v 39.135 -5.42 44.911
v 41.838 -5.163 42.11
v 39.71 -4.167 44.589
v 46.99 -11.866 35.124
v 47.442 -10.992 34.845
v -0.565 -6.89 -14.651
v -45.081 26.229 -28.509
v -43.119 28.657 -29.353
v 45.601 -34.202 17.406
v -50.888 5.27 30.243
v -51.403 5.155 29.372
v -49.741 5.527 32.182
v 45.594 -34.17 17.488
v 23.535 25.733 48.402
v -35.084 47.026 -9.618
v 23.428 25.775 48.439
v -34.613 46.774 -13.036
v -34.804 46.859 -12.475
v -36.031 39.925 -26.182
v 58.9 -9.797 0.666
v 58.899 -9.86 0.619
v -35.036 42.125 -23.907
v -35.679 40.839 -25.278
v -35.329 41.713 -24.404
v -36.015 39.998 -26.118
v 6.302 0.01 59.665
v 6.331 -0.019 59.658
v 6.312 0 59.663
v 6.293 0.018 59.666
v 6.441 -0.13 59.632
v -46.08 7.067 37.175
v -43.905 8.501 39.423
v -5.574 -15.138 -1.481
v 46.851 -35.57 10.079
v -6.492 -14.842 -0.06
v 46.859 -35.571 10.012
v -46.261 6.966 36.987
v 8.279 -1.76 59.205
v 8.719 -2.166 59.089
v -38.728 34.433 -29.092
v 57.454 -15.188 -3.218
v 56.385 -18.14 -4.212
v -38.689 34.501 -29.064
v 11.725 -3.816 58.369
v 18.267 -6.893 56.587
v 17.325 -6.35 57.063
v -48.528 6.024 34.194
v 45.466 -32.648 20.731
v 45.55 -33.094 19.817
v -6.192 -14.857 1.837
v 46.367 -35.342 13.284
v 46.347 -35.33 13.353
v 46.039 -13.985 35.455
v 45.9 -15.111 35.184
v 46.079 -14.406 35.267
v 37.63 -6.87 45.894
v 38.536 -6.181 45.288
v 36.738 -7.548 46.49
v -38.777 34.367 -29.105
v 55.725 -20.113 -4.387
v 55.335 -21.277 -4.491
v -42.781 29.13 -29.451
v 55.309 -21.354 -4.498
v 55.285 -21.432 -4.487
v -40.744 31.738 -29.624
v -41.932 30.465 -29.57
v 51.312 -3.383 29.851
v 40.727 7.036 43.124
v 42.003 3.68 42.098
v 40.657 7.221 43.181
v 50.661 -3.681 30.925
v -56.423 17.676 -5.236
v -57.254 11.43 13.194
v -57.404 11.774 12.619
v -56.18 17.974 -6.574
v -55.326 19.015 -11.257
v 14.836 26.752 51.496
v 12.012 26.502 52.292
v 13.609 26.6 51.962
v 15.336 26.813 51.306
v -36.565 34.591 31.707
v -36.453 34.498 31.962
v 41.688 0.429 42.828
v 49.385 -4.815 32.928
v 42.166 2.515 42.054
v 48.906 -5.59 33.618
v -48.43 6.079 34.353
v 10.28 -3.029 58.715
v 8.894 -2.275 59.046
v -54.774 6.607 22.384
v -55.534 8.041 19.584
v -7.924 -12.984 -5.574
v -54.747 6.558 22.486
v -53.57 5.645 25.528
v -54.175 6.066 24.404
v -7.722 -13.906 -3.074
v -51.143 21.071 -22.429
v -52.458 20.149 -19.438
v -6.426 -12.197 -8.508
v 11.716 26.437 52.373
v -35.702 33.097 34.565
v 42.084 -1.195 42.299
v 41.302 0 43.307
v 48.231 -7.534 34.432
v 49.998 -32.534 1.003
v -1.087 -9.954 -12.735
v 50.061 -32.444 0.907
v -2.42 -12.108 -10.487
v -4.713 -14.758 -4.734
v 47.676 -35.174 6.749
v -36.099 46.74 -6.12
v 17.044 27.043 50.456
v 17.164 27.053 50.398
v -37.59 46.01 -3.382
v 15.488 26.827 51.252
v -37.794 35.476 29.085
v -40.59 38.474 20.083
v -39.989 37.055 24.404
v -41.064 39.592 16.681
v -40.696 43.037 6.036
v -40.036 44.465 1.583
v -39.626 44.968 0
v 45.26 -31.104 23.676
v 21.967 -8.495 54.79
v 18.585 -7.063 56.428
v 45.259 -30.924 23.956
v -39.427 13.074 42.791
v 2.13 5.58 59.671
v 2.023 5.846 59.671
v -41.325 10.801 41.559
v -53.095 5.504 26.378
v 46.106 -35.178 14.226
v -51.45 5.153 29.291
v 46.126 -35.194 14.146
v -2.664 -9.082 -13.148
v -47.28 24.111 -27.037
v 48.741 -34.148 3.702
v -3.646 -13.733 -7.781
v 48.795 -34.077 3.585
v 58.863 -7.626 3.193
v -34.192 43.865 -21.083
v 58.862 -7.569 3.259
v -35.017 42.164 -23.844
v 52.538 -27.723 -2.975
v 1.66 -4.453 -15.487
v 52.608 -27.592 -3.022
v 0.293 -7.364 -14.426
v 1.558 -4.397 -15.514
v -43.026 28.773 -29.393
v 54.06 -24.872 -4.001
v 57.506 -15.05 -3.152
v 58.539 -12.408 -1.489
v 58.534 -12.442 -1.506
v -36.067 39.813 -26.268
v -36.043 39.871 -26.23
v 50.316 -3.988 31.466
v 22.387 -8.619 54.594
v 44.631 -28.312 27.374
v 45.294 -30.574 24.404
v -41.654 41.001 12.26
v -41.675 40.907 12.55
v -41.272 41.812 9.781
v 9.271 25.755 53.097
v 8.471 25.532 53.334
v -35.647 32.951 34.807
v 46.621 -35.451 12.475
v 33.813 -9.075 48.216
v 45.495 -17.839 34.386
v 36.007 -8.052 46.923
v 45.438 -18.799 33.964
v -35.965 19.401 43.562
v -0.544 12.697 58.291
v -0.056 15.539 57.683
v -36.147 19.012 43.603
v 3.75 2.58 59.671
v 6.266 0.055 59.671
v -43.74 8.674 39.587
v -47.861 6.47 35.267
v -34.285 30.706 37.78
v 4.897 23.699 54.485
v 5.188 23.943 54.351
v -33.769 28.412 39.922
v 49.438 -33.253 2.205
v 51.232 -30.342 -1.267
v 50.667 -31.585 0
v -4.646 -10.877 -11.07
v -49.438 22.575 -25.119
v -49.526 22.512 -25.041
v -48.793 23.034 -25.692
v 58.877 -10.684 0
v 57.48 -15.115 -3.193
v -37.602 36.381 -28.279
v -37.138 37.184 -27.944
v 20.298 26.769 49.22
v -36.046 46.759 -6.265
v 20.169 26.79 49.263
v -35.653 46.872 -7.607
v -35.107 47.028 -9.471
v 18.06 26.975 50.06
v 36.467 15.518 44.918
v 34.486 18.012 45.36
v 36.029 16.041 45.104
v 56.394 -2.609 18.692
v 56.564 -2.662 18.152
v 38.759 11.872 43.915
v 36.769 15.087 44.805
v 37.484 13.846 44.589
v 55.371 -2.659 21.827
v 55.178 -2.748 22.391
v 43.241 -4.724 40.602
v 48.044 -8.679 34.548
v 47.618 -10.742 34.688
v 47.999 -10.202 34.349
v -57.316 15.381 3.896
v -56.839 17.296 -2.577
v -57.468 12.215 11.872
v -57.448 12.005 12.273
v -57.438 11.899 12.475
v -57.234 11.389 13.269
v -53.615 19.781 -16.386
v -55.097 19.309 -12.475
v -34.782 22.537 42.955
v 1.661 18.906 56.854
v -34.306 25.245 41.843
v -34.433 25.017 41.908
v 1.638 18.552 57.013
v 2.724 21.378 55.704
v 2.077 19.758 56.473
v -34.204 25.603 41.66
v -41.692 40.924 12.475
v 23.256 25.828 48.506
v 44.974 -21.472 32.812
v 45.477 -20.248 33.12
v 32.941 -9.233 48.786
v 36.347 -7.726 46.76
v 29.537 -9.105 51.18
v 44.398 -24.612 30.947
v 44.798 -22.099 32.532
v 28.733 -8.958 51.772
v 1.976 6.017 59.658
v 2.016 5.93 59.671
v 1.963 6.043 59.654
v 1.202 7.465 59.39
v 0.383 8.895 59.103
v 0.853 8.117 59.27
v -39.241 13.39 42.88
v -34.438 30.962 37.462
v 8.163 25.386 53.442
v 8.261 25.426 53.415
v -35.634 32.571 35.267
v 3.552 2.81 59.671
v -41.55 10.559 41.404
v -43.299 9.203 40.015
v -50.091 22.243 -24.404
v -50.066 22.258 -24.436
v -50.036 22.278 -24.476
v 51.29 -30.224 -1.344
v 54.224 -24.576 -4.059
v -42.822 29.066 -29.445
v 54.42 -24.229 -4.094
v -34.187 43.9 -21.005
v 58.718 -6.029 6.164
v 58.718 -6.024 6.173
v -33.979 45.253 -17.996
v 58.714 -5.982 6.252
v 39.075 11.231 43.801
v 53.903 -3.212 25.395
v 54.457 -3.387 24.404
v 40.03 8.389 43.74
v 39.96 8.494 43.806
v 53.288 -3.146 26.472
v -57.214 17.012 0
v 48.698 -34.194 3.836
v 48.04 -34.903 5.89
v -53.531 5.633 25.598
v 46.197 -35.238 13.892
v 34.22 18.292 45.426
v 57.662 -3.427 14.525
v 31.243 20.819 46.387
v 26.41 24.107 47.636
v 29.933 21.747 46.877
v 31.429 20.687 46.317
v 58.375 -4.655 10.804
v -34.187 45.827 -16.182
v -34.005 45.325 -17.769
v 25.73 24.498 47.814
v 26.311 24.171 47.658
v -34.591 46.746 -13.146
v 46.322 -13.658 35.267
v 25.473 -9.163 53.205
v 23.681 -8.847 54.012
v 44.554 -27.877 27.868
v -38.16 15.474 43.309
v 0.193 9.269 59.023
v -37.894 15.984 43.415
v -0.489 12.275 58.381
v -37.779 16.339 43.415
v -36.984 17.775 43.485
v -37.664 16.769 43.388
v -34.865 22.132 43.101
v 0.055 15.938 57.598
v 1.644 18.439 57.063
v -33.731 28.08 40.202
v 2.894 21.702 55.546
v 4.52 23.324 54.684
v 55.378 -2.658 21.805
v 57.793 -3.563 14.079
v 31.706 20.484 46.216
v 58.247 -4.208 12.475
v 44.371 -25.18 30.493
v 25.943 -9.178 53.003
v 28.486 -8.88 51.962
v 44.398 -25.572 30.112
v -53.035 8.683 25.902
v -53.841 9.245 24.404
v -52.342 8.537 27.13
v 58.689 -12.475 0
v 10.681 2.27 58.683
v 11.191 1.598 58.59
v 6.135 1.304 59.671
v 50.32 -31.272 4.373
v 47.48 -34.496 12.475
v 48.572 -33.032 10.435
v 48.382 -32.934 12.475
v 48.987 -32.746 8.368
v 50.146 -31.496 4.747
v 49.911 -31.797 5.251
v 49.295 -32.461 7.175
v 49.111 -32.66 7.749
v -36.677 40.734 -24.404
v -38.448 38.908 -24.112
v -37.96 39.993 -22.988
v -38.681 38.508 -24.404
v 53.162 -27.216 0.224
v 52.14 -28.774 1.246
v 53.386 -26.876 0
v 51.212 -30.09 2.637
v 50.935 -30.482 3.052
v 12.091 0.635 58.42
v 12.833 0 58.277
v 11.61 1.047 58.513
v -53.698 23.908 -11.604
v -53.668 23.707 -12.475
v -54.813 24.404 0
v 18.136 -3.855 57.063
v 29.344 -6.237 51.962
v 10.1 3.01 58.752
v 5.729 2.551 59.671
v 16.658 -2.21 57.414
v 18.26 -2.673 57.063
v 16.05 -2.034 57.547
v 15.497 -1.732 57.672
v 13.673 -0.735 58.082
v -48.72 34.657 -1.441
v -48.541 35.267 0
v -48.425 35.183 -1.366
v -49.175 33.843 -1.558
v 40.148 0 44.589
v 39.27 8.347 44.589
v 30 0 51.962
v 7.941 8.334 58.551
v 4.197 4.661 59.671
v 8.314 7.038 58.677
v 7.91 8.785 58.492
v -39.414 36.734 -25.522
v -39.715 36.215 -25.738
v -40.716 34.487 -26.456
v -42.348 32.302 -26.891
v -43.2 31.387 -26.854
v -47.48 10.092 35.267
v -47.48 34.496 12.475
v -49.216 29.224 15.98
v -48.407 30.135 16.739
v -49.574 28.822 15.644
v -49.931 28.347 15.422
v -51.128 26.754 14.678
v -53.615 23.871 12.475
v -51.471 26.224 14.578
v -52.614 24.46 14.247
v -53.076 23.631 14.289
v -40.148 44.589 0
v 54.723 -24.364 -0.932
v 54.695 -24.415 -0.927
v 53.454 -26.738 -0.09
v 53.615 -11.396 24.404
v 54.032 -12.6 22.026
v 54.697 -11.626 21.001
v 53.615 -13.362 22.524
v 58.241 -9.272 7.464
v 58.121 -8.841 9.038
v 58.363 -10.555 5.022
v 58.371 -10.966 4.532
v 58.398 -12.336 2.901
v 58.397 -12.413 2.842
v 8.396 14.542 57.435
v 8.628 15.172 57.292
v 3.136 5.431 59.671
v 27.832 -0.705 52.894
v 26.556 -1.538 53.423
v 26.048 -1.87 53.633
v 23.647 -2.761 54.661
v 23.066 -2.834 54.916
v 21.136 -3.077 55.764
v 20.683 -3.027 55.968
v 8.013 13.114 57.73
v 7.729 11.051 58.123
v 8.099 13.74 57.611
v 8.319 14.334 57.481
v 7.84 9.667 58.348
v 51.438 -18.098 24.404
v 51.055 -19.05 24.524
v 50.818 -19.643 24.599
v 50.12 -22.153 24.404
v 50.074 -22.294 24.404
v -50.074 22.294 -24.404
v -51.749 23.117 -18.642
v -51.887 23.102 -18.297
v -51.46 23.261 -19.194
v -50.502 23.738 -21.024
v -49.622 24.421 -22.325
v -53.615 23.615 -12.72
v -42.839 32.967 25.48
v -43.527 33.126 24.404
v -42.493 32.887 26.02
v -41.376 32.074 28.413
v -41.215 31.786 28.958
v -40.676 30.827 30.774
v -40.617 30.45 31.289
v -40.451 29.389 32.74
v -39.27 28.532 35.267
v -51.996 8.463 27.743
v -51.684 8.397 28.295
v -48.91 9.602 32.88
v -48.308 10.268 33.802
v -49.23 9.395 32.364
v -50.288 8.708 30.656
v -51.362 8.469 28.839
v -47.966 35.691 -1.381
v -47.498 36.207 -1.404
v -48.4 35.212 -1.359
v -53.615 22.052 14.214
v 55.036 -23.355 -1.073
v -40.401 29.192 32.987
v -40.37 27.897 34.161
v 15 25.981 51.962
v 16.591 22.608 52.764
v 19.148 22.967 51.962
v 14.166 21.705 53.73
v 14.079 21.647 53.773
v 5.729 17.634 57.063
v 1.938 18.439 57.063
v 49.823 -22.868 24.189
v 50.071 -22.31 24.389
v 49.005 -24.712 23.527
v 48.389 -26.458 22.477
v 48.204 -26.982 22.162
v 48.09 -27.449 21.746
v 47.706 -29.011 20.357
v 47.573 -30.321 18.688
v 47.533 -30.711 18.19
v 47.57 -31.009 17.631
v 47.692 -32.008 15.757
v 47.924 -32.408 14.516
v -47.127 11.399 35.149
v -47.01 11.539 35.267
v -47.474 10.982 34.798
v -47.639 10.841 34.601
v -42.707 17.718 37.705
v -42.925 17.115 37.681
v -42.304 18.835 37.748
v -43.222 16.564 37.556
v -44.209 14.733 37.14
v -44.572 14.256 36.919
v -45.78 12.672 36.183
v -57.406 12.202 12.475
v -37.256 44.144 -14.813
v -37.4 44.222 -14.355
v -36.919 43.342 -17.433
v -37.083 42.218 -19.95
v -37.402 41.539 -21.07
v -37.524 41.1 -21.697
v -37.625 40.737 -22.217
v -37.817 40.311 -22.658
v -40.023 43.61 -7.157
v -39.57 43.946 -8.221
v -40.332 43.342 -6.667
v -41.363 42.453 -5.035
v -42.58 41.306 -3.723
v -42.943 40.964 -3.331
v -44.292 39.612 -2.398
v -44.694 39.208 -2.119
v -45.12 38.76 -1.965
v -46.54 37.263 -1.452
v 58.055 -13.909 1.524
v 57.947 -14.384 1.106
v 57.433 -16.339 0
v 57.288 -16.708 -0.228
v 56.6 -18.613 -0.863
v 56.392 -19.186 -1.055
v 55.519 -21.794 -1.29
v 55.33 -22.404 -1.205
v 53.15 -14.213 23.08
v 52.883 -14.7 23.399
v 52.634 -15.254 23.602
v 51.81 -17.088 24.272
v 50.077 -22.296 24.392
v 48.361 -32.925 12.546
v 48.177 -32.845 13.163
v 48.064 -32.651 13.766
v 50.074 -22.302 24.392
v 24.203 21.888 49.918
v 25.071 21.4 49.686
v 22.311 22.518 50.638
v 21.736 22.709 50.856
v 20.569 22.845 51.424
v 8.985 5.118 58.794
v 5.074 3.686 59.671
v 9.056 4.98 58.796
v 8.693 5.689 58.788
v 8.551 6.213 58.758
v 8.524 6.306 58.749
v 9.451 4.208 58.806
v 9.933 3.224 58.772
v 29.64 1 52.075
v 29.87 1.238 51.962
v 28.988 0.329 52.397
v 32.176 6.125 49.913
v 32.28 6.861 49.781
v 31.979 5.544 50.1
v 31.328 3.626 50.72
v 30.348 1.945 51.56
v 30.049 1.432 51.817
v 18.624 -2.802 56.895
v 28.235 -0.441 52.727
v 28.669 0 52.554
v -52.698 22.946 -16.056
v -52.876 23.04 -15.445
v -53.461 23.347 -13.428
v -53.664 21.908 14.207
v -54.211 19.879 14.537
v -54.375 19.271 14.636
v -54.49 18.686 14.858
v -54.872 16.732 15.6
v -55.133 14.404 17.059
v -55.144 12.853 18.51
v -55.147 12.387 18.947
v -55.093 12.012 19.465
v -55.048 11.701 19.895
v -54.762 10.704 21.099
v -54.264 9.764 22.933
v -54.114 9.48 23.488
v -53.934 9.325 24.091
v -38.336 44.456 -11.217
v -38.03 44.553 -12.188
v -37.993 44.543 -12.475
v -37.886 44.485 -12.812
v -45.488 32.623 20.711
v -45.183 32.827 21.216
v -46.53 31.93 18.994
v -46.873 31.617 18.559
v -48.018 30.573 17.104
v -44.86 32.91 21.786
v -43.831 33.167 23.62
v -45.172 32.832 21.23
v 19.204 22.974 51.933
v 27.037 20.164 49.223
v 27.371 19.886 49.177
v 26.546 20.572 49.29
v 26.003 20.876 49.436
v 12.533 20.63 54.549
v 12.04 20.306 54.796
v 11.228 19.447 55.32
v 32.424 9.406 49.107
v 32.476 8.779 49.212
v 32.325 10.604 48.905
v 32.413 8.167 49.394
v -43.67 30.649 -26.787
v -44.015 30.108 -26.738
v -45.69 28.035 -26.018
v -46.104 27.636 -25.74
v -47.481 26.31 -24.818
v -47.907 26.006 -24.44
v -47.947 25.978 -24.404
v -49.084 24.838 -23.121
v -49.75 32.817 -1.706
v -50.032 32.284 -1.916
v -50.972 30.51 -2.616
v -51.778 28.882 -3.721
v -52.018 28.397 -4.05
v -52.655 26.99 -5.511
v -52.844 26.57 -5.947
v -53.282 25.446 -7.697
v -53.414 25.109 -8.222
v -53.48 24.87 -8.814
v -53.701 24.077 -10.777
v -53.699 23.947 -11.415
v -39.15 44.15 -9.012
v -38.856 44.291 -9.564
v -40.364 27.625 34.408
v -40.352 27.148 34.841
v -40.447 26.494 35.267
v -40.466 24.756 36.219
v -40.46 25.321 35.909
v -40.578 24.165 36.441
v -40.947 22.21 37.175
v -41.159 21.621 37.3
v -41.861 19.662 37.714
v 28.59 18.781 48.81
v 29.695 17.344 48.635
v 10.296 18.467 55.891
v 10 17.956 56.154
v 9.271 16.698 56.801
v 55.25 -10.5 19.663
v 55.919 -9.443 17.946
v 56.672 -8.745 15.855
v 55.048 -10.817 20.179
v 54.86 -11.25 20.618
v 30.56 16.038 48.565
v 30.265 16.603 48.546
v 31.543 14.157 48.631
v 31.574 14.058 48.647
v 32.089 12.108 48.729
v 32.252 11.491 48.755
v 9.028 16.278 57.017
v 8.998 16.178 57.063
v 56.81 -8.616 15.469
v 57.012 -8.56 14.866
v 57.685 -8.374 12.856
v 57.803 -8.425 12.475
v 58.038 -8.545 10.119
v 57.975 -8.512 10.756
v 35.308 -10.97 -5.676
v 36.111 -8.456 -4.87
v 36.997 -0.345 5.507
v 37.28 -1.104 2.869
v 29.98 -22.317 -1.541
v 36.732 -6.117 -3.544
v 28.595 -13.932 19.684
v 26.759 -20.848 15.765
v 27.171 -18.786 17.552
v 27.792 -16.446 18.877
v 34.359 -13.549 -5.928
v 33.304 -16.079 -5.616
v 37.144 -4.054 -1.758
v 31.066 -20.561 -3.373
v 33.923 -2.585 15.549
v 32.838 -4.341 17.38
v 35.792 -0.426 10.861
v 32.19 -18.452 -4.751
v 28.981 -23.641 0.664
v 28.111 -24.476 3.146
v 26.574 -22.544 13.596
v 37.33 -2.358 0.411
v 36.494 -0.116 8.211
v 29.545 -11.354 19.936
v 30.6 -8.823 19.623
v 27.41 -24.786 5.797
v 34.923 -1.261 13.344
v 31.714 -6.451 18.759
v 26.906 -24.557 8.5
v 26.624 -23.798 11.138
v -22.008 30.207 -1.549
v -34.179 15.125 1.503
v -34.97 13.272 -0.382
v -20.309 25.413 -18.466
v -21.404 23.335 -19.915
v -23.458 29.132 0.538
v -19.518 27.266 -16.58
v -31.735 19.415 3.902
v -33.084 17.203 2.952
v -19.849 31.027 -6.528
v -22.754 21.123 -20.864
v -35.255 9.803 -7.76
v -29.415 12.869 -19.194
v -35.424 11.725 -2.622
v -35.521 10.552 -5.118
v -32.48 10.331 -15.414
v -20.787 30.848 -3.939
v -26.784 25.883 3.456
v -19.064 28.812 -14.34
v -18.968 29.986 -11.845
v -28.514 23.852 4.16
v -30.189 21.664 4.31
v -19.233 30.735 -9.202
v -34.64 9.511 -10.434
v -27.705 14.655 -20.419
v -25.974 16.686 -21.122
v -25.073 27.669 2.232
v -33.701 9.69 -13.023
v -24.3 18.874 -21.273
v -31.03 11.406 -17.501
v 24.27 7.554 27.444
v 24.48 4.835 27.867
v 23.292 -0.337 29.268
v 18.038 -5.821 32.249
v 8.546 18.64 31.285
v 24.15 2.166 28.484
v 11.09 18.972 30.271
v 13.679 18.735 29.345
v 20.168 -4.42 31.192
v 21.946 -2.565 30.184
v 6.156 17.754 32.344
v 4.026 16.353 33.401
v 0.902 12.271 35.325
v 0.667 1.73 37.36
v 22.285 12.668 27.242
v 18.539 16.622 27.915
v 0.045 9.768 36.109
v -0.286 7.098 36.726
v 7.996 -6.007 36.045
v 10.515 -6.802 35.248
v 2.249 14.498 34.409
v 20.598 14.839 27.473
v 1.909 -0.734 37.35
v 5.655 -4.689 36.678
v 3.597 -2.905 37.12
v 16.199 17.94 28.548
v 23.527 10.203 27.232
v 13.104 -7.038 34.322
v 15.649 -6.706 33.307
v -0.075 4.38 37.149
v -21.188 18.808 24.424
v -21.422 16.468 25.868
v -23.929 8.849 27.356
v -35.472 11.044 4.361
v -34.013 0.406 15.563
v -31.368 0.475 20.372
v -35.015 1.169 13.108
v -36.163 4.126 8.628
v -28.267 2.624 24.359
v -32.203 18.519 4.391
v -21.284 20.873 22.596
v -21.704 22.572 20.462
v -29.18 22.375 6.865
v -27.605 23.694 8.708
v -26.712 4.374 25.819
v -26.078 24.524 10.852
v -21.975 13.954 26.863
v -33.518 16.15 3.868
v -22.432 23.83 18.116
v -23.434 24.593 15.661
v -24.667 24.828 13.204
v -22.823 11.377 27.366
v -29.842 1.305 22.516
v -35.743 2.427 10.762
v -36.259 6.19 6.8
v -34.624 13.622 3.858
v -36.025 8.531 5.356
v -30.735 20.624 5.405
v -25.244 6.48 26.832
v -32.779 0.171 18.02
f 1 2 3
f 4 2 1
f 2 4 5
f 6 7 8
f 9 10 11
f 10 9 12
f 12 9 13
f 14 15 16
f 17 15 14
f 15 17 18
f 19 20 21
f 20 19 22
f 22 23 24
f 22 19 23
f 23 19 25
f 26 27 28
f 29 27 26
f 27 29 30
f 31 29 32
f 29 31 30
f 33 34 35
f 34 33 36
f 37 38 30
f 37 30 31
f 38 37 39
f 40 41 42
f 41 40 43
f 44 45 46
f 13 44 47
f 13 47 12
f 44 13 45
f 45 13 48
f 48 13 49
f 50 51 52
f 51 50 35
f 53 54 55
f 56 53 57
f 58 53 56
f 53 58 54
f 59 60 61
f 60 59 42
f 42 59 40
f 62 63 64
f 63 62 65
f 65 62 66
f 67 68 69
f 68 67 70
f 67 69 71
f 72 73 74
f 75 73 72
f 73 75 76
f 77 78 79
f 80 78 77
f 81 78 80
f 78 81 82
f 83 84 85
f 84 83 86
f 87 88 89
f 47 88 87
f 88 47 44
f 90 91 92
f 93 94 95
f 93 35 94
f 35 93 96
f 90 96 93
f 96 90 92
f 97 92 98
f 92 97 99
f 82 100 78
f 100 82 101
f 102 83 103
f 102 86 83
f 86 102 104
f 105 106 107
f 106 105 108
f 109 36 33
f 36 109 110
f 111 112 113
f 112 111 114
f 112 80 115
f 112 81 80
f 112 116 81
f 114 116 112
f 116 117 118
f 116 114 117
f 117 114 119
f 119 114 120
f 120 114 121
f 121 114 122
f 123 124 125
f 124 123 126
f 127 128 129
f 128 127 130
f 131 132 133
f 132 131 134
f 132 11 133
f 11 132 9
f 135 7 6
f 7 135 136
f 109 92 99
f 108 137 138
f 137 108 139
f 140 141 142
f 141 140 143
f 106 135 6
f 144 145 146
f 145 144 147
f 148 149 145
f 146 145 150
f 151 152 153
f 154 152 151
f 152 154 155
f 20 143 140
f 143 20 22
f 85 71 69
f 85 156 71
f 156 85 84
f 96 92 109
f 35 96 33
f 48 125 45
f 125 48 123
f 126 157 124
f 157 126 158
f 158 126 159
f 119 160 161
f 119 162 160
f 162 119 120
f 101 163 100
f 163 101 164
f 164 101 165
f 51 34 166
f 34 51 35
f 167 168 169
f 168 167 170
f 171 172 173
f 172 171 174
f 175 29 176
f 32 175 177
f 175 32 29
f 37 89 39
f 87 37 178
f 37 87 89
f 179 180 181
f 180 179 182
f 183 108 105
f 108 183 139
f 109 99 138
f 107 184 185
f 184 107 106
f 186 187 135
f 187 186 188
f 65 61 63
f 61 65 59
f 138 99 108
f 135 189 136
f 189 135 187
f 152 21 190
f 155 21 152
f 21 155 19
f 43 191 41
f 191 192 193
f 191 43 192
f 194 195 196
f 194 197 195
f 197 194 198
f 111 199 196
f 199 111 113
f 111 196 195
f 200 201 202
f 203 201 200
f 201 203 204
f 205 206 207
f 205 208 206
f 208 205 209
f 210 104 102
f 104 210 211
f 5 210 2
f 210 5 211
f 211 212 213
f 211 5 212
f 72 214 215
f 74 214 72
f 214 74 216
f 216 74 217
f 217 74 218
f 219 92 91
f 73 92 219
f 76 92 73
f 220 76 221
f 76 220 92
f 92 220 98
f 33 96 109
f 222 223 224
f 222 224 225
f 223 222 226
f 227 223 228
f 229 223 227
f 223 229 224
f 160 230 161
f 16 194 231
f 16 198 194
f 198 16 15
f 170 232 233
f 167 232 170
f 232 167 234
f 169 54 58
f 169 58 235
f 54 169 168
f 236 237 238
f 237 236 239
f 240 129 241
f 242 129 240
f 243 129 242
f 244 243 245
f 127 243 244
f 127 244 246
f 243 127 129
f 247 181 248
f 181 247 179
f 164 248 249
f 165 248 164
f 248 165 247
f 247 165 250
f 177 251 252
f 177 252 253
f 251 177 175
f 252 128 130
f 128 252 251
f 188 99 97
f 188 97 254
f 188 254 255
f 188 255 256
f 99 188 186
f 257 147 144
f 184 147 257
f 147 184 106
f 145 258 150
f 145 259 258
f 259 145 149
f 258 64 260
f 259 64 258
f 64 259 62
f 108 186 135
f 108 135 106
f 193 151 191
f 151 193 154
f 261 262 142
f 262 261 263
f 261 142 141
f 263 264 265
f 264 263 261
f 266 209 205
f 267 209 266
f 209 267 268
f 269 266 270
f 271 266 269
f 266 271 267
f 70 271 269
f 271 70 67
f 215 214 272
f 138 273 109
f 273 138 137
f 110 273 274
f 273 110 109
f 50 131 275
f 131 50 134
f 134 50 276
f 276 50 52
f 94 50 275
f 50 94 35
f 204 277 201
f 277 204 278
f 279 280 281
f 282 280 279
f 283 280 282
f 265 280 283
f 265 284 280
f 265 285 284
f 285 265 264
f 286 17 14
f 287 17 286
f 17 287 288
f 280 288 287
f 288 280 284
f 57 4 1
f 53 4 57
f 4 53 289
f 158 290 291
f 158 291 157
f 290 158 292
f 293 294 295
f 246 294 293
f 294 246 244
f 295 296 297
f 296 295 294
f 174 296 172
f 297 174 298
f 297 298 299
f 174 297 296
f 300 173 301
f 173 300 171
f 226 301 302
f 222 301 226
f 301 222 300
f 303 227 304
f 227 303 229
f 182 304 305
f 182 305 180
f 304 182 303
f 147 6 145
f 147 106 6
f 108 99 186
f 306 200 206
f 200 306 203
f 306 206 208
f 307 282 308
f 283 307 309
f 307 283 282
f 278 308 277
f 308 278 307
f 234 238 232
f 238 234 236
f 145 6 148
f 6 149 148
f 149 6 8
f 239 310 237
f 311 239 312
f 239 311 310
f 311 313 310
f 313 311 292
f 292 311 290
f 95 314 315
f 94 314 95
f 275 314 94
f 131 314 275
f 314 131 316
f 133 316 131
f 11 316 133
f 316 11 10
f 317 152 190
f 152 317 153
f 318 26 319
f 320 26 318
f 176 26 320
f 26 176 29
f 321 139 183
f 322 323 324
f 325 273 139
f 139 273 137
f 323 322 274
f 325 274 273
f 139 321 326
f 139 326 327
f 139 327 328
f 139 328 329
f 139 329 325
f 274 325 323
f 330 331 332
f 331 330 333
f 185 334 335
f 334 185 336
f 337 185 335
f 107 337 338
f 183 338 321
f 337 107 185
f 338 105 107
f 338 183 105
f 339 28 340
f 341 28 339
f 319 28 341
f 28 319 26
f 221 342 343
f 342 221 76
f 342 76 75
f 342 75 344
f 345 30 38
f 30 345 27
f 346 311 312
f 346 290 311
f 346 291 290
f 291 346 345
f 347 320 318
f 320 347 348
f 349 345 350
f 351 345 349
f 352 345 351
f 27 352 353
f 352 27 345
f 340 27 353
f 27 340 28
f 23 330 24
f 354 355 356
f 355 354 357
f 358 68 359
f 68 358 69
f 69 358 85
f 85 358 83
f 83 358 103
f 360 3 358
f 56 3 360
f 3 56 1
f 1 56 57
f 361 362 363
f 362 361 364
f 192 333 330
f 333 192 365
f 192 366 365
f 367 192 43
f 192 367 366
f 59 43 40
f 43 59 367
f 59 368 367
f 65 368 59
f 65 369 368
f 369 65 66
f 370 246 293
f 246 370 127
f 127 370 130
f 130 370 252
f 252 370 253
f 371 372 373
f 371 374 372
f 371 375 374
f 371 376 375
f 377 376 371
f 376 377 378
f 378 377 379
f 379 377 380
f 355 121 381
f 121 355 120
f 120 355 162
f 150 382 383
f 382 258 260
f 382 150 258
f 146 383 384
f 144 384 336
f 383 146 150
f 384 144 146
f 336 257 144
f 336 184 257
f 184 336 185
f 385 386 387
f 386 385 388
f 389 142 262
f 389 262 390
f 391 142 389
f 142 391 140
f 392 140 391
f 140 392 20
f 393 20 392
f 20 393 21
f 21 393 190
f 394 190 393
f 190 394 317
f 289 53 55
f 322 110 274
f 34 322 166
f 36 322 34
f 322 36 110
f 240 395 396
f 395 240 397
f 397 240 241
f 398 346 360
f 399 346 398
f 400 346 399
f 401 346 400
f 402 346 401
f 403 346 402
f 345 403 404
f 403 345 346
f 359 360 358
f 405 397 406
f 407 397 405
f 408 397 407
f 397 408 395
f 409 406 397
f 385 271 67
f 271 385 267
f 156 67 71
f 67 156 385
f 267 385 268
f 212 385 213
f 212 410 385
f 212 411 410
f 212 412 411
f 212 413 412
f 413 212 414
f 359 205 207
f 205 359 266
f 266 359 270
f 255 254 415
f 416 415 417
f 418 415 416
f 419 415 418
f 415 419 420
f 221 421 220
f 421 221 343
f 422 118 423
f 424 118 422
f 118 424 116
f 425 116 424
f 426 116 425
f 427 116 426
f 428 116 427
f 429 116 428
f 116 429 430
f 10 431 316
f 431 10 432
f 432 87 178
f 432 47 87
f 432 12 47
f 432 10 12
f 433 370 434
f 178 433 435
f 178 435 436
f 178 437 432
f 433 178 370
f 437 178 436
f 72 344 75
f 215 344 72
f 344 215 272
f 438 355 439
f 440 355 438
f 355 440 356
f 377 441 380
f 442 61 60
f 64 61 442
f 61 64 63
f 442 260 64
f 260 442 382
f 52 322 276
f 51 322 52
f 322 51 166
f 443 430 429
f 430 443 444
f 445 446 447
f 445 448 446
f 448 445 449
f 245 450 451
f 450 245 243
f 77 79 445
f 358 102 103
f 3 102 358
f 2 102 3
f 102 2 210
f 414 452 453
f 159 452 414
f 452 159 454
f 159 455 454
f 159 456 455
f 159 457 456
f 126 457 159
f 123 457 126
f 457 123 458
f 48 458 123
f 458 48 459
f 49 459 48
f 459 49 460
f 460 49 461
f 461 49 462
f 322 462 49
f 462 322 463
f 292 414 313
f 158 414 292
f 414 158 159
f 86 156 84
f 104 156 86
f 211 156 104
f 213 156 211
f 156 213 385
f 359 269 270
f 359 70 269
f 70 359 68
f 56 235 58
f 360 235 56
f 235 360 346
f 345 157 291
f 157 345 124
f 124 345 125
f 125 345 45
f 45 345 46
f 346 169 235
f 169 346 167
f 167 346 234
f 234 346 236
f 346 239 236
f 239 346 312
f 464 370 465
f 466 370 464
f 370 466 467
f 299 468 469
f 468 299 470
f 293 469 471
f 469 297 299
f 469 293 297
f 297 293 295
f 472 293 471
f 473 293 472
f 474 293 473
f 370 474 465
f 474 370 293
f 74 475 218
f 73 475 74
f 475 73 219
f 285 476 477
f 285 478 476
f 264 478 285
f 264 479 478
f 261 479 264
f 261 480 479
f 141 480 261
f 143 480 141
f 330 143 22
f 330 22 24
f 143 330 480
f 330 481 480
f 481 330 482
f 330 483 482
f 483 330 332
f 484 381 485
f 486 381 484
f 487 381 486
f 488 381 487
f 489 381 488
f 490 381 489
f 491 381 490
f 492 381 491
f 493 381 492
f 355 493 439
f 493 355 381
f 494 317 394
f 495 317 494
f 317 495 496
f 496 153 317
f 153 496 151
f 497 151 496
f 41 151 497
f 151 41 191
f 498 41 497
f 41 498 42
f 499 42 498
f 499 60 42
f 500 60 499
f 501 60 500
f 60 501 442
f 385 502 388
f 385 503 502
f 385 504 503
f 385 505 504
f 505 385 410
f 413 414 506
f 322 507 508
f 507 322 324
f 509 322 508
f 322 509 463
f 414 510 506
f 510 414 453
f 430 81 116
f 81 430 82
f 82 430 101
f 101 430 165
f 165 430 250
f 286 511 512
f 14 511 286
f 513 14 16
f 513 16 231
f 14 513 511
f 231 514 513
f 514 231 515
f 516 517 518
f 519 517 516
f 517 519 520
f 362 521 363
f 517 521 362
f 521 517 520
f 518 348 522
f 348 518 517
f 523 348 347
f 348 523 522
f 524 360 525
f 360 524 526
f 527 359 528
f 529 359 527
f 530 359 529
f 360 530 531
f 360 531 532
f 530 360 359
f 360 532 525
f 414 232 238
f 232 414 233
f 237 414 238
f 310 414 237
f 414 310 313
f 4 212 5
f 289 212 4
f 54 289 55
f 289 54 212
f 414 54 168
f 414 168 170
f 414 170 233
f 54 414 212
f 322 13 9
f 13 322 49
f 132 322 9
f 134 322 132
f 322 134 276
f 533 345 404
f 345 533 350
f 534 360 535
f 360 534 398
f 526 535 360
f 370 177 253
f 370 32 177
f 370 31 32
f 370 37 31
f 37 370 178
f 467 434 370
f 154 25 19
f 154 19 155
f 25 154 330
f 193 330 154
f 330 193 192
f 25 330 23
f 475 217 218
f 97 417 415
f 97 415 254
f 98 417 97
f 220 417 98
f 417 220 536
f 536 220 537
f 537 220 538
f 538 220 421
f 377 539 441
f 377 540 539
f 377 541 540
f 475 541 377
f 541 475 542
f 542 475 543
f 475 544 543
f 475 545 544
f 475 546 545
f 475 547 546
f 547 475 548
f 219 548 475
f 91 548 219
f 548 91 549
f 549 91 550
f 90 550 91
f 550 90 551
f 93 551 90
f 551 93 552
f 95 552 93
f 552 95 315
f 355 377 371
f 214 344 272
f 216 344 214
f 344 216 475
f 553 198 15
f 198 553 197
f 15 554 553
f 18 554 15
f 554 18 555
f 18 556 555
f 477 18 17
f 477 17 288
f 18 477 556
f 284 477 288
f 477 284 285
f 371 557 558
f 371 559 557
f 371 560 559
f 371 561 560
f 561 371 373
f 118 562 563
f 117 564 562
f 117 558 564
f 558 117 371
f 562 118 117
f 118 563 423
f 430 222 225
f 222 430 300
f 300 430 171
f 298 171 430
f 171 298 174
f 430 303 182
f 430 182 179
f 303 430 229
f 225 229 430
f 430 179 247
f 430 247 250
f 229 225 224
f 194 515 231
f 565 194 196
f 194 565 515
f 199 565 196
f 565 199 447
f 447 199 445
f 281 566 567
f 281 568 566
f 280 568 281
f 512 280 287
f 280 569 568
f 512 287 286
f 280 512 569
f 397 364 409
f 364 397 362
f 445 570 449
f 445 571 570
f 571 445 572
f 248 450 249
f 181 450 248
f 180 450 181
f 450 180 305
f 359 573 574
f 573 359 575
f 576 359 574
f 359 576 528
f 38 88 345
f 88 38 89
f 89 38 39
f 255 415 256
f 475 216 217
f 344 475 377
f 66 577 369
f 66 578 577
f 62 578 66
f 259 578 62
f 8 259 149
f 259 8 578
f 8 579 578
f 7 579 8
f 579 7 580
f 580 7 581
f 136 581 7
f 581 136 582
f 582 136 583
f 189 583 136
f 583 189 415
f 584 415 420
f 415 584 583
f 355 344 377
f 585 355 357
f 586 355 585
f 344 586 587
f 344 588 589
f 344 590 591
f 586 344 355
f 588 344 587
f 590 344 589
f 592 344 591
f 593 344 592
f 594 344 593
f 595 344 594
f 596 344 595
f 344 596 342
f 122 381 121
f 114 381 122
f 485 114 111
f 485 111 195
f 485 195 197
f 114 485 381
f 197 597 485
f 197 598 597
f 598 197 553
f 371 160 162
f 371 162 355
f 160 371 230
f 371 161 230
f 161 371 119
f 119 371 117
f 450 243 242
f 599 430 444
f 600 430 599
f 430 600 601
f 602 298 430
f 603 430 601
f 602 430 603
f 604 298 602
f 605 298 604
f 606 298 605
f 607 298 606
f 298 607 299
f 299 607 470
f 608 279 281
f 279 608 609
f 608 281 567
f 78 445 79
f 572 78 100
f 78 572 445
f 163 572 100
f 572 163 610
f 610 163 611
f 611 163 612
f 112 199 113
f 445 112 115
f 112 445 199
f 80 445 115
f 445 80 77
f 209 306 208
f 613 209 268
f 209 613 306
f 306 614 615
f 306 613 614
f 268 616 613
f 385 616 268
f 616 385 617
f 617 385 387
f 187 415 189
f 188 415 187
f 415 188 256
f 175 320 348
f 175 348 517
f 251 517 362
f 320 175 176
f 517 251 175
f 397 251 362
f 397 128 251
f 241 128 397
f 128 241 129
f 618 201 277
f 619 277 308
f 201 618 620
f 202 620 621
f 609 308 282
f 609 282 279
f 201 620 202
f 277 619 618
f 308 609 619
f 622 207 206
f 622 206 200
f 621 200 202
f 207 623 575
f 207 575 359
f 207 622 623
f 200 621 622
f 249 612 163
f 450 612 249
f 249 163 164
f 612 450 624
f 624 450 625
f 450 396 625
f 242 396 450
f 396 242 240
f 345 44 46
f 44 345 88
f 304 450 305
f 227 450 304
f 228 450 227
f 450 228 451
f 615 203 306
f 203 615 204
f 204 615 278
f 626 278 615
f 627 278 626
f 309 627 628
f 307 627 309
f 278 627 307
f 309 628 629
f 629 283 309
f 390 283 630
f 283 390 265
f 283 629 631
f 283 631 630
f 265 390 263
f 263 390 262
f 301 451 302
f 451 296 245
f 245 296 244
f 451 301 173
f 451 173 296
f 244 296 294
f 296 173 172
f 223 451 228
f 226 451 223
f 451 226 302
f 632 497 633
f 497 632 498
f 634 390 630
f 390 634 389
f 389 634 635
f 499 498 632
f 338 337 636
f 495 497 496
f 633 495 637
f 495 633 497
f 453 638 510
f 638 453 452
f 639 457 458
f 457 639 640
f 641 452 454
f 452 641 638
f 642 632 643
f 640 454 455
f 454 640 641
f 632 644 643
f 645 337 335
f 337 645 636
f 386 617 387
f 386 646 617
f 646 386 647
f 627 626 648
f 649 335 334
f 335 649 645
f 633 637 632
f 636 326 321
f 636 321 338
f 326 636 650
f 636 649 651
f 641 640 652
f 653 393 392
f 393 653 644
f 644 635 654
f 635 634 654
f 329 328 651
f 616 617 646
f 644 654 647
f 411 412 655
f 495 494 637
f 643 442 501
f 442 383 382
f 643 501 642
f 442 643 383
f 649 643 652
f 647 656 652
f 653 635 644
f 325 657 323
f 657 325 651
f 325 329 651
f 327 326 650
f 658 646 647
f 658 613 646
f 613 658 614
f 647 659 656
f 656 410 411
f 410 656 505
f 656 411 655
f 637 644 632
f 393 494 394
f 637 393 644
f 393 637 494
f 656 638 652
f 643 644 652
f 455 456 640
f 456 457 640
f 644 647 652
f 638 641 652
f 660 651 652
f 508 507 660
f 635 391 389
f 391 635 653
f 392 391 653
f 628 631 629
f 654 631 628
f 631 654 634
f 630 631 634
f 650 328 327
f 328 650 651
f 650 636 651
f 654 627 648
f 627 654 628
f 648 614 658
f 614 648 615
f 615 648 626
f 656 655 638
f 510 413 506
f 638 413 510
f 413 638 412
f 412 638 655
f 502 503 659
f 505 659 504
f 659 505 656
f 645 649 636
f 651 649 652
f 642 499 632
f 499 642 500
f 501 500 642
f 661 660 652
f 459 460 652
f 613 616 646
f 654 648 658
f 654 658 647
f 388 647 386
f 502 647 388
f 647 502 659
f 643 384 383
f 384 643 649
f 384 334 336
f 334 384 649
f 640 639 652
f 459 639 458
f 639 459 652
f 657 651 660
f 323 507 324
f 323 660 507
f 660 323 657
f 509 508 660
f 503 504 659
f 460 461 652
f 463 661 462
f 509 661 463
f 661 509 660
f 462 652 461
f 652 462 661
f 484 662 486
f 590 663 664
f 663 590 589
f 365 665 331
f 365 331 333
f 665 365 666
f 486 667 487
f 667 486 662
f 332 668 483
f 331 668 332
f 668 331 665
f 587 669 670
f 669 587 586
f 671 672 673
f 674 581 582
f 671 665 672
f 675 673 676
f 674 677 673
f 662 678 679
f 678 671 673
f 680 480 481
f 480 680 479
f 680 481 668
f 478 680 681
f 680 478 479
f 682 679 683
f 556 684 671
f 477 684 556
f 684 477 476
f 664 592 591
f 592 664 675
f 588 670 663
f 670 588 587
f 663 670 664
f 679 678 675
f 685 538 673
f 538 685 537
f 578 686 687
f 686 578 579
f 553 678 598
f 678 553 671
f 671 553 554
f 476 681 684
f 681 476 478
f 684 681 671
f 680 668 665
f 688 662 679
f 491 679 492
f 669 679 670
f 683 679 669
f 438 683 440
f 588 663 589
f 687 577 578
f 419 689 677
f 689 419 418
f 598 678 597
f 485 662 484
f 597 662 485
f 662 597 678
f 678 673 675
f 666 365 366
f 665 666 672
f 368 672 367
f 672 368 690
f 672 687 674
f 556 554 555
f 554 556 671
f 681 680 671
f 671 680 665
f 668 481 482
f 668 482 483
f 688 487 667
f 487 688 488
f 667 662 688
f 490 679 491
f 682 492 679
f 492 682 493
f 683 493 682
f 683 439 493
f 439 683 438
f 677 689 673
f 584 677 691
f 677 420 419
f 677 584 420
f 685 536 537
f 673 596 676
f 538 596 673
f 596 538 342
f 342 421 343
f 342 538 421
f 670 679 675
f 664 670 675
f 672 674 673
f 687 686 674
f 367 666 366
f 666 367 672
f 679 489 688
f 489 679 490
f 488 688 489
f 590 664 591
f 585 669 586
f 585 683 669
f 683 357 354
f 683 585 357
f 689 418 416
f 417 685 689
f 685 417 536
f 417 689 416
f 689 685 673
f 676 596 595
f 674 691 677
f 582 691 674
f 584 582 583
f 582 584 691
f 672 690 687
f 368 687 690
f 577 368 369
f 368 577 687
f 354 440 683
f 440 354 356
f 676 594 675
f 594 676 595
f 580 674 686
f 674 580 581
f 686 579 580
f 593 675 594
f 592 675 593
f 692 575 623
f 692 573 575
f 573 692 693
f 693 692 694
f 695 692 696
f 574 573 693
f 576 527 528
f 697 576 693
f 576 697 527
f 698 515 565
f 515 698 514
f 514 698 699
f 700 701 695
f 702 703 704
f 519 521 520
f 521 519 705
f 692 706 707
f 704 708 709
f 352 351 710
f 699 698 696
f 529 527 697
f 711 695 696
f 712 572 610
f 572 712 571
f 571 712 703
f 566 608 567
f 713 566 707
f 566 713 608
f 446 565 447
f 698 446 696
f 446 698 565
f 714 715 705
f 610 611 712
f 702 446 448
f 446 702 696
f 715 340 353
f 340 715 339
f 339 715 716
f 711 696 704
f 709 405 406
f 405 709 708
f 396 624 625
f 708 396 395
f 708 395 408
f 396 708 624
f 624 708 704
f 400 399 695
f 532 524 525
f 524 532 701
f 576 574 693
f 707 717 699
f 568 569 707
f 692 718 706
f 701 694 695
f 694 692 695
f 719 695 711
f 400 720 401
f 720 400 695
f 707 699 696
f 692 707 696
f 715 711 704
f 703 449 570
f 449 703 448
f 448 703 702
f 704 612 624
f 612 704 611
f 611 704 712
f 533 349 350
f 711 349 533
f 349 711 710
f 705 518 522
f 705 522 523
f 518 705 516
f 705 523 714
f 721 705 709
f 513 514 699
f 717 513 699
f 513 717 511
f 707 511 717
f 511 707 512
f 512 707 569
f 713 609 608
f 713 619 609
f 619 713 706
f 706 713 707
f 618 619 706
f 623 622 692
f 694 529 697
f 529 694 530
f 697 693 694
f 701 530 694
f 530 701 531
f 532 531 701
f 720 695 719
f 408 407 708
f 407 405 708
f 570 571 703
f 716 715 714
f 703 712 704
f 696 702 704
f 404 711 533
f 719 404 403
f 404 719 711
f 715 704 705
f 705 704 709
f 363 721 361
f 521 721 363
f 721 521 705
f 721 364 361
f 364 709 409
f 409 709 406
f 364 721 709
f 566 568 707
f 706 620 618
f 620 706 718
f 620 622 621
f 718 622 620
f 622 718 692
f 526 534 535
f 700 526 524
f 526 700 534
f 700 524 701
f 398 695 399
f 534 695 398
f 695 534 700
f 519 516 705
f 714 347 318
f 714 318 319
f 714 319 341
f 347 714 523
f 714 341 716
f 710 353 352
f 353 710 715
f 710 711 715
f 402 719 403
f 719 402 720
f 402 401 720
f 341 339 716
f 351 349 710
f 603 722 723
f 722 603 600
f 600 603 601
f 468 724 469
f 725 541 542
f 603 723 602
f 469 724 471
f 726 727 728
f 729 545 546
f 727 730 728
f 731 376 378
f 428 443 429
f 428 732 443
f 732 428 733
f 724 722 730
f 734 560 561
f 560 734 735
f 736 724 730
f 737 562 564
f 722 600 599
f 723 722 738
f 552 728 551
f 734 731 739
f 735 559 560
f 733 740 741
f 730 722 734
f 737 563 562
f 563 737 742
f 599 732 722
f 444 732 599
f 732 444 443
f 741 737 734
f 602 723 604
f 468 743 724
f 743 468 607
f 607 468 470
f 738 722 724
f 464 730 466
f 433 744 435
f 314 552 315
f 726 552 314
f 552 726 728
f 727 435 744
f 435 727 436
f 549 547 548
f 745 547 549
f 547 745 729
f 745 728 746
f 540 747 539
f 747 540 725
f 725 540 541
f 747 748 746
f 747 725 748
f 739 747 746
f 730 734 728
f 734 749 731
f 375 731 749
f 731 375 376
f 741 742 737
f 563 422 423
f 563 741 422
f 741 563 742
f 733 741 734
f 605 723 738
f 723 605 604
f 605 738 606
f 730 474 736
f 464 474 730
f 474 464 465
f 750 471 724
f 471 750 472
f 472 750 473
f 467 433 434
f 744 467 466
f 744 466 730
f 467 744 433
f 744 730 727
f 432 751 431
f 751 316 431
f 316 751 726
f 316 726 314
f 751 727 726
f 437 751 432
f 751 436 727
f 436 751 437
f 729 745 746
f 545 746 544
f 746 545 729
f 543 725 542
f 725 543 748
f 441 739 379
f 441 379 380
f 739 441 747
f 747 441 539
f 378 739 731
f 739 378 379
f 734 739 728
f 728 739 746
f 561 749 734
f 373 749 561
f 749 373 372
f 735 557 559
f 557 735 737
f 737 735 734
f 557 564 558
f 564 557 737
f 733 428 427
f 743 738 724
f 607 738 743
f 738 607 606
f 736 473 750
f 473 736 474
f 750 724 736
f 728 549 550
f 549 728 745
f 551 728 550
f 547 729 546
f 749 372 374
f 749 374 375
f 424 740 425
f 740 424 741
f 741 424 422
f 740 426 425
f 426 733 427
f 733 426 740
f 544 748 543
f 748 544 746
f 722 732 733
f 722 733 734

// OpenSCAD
difference() {
	intersection() {
		hull() {
			rotate(a = -15.9318645053, v = [0.2499934973, 0.1133588509, -0.0000000000]) {
				rotate(a = -90.0000000000, v = [-0.3812464258, -0.9244734516, 0.0000000000]) {
					cylinder(h = 60, r = 16.2000000000);
				}
			}
			rotate(a = -15.9318645053, v = [0.2499934973, 0.1133588509, -0.0000000000]) {
				rotate(a = -90.0000000000, v = [0.6099942813, 0.7924058157, -0.0000000000]) {
					cylinder(h = 60, r = 16.2000000000);
				}
			}
			rotate(a = -15.9318645053, v = [0.2499934973, 0.1133588509, -0.0000000000]) {
				rotate(a = -27.0328006209, v = [-0.0606433183, -0.4504365654, 0.0000000000]) {
					cylinder(h = 60, r = 16.2000000000);
				}
			}
			rotate(a = -15.9318645053, v = [0.2499934973, 0.1133588509, -0.0000000000]) {
				rotate(a = -52.3213918087, v = [0.2223791596, 0.7595679396, -0.0000000000]) {
					cylinder(h = 60, r = 16.2000000000);
				}
			}
		}
		sphere(r = 60);
	}
	union() {
		rotate(a = -15.9318645053, v = [0.2499934973, 0.1133588509, -0.0000000000]) {
			rotate(a = -90.0000000000, v = [-0.3812464258, -0.9244734516, 0.0000000000]) {
				translate(v = [0, 0, 35]) {
					cylinder(h = 100, r = 13.2000000000);
				}
			}
		}
		rotate(a = -15.9318645053, v = [0.2499934973, 0.1133588509, -0.0000000000]) {
			rotate(a = -90.0000000000, v = [0.6099942813, 0.7924058157, -0.0000000000]) {
				translate(v = [0, 0, 35]) {
					cylinder(h = 100, r = 13.2000000000);
				}
			}
		}
		rotate(a = -15.9318645053, v = [0.2499934973, 0.1133588509, -0.0000000000]) {
			rotate(a = -27.0328006209, v = [-0.0606433183, -0.4504365654, 0.0000000000]) {
				translate(v = [0, 0, 35]) {
					cylinder(h = 100, r = 13.2000000000);
				}
			}
		}
		rotate(a = -15.9318645053, v = [0.2499934973, 0.1133588509, -0.0000000000]) {
			rotate(a = -52.3213918087, v = [0.2223791596, 0.7595679396, -0.0000000000]) {
				translate(v = [0, 0, 35]) {
					cylinder(h = 100, r = 13.2000000000);
				}
			}
		}
	}
}
